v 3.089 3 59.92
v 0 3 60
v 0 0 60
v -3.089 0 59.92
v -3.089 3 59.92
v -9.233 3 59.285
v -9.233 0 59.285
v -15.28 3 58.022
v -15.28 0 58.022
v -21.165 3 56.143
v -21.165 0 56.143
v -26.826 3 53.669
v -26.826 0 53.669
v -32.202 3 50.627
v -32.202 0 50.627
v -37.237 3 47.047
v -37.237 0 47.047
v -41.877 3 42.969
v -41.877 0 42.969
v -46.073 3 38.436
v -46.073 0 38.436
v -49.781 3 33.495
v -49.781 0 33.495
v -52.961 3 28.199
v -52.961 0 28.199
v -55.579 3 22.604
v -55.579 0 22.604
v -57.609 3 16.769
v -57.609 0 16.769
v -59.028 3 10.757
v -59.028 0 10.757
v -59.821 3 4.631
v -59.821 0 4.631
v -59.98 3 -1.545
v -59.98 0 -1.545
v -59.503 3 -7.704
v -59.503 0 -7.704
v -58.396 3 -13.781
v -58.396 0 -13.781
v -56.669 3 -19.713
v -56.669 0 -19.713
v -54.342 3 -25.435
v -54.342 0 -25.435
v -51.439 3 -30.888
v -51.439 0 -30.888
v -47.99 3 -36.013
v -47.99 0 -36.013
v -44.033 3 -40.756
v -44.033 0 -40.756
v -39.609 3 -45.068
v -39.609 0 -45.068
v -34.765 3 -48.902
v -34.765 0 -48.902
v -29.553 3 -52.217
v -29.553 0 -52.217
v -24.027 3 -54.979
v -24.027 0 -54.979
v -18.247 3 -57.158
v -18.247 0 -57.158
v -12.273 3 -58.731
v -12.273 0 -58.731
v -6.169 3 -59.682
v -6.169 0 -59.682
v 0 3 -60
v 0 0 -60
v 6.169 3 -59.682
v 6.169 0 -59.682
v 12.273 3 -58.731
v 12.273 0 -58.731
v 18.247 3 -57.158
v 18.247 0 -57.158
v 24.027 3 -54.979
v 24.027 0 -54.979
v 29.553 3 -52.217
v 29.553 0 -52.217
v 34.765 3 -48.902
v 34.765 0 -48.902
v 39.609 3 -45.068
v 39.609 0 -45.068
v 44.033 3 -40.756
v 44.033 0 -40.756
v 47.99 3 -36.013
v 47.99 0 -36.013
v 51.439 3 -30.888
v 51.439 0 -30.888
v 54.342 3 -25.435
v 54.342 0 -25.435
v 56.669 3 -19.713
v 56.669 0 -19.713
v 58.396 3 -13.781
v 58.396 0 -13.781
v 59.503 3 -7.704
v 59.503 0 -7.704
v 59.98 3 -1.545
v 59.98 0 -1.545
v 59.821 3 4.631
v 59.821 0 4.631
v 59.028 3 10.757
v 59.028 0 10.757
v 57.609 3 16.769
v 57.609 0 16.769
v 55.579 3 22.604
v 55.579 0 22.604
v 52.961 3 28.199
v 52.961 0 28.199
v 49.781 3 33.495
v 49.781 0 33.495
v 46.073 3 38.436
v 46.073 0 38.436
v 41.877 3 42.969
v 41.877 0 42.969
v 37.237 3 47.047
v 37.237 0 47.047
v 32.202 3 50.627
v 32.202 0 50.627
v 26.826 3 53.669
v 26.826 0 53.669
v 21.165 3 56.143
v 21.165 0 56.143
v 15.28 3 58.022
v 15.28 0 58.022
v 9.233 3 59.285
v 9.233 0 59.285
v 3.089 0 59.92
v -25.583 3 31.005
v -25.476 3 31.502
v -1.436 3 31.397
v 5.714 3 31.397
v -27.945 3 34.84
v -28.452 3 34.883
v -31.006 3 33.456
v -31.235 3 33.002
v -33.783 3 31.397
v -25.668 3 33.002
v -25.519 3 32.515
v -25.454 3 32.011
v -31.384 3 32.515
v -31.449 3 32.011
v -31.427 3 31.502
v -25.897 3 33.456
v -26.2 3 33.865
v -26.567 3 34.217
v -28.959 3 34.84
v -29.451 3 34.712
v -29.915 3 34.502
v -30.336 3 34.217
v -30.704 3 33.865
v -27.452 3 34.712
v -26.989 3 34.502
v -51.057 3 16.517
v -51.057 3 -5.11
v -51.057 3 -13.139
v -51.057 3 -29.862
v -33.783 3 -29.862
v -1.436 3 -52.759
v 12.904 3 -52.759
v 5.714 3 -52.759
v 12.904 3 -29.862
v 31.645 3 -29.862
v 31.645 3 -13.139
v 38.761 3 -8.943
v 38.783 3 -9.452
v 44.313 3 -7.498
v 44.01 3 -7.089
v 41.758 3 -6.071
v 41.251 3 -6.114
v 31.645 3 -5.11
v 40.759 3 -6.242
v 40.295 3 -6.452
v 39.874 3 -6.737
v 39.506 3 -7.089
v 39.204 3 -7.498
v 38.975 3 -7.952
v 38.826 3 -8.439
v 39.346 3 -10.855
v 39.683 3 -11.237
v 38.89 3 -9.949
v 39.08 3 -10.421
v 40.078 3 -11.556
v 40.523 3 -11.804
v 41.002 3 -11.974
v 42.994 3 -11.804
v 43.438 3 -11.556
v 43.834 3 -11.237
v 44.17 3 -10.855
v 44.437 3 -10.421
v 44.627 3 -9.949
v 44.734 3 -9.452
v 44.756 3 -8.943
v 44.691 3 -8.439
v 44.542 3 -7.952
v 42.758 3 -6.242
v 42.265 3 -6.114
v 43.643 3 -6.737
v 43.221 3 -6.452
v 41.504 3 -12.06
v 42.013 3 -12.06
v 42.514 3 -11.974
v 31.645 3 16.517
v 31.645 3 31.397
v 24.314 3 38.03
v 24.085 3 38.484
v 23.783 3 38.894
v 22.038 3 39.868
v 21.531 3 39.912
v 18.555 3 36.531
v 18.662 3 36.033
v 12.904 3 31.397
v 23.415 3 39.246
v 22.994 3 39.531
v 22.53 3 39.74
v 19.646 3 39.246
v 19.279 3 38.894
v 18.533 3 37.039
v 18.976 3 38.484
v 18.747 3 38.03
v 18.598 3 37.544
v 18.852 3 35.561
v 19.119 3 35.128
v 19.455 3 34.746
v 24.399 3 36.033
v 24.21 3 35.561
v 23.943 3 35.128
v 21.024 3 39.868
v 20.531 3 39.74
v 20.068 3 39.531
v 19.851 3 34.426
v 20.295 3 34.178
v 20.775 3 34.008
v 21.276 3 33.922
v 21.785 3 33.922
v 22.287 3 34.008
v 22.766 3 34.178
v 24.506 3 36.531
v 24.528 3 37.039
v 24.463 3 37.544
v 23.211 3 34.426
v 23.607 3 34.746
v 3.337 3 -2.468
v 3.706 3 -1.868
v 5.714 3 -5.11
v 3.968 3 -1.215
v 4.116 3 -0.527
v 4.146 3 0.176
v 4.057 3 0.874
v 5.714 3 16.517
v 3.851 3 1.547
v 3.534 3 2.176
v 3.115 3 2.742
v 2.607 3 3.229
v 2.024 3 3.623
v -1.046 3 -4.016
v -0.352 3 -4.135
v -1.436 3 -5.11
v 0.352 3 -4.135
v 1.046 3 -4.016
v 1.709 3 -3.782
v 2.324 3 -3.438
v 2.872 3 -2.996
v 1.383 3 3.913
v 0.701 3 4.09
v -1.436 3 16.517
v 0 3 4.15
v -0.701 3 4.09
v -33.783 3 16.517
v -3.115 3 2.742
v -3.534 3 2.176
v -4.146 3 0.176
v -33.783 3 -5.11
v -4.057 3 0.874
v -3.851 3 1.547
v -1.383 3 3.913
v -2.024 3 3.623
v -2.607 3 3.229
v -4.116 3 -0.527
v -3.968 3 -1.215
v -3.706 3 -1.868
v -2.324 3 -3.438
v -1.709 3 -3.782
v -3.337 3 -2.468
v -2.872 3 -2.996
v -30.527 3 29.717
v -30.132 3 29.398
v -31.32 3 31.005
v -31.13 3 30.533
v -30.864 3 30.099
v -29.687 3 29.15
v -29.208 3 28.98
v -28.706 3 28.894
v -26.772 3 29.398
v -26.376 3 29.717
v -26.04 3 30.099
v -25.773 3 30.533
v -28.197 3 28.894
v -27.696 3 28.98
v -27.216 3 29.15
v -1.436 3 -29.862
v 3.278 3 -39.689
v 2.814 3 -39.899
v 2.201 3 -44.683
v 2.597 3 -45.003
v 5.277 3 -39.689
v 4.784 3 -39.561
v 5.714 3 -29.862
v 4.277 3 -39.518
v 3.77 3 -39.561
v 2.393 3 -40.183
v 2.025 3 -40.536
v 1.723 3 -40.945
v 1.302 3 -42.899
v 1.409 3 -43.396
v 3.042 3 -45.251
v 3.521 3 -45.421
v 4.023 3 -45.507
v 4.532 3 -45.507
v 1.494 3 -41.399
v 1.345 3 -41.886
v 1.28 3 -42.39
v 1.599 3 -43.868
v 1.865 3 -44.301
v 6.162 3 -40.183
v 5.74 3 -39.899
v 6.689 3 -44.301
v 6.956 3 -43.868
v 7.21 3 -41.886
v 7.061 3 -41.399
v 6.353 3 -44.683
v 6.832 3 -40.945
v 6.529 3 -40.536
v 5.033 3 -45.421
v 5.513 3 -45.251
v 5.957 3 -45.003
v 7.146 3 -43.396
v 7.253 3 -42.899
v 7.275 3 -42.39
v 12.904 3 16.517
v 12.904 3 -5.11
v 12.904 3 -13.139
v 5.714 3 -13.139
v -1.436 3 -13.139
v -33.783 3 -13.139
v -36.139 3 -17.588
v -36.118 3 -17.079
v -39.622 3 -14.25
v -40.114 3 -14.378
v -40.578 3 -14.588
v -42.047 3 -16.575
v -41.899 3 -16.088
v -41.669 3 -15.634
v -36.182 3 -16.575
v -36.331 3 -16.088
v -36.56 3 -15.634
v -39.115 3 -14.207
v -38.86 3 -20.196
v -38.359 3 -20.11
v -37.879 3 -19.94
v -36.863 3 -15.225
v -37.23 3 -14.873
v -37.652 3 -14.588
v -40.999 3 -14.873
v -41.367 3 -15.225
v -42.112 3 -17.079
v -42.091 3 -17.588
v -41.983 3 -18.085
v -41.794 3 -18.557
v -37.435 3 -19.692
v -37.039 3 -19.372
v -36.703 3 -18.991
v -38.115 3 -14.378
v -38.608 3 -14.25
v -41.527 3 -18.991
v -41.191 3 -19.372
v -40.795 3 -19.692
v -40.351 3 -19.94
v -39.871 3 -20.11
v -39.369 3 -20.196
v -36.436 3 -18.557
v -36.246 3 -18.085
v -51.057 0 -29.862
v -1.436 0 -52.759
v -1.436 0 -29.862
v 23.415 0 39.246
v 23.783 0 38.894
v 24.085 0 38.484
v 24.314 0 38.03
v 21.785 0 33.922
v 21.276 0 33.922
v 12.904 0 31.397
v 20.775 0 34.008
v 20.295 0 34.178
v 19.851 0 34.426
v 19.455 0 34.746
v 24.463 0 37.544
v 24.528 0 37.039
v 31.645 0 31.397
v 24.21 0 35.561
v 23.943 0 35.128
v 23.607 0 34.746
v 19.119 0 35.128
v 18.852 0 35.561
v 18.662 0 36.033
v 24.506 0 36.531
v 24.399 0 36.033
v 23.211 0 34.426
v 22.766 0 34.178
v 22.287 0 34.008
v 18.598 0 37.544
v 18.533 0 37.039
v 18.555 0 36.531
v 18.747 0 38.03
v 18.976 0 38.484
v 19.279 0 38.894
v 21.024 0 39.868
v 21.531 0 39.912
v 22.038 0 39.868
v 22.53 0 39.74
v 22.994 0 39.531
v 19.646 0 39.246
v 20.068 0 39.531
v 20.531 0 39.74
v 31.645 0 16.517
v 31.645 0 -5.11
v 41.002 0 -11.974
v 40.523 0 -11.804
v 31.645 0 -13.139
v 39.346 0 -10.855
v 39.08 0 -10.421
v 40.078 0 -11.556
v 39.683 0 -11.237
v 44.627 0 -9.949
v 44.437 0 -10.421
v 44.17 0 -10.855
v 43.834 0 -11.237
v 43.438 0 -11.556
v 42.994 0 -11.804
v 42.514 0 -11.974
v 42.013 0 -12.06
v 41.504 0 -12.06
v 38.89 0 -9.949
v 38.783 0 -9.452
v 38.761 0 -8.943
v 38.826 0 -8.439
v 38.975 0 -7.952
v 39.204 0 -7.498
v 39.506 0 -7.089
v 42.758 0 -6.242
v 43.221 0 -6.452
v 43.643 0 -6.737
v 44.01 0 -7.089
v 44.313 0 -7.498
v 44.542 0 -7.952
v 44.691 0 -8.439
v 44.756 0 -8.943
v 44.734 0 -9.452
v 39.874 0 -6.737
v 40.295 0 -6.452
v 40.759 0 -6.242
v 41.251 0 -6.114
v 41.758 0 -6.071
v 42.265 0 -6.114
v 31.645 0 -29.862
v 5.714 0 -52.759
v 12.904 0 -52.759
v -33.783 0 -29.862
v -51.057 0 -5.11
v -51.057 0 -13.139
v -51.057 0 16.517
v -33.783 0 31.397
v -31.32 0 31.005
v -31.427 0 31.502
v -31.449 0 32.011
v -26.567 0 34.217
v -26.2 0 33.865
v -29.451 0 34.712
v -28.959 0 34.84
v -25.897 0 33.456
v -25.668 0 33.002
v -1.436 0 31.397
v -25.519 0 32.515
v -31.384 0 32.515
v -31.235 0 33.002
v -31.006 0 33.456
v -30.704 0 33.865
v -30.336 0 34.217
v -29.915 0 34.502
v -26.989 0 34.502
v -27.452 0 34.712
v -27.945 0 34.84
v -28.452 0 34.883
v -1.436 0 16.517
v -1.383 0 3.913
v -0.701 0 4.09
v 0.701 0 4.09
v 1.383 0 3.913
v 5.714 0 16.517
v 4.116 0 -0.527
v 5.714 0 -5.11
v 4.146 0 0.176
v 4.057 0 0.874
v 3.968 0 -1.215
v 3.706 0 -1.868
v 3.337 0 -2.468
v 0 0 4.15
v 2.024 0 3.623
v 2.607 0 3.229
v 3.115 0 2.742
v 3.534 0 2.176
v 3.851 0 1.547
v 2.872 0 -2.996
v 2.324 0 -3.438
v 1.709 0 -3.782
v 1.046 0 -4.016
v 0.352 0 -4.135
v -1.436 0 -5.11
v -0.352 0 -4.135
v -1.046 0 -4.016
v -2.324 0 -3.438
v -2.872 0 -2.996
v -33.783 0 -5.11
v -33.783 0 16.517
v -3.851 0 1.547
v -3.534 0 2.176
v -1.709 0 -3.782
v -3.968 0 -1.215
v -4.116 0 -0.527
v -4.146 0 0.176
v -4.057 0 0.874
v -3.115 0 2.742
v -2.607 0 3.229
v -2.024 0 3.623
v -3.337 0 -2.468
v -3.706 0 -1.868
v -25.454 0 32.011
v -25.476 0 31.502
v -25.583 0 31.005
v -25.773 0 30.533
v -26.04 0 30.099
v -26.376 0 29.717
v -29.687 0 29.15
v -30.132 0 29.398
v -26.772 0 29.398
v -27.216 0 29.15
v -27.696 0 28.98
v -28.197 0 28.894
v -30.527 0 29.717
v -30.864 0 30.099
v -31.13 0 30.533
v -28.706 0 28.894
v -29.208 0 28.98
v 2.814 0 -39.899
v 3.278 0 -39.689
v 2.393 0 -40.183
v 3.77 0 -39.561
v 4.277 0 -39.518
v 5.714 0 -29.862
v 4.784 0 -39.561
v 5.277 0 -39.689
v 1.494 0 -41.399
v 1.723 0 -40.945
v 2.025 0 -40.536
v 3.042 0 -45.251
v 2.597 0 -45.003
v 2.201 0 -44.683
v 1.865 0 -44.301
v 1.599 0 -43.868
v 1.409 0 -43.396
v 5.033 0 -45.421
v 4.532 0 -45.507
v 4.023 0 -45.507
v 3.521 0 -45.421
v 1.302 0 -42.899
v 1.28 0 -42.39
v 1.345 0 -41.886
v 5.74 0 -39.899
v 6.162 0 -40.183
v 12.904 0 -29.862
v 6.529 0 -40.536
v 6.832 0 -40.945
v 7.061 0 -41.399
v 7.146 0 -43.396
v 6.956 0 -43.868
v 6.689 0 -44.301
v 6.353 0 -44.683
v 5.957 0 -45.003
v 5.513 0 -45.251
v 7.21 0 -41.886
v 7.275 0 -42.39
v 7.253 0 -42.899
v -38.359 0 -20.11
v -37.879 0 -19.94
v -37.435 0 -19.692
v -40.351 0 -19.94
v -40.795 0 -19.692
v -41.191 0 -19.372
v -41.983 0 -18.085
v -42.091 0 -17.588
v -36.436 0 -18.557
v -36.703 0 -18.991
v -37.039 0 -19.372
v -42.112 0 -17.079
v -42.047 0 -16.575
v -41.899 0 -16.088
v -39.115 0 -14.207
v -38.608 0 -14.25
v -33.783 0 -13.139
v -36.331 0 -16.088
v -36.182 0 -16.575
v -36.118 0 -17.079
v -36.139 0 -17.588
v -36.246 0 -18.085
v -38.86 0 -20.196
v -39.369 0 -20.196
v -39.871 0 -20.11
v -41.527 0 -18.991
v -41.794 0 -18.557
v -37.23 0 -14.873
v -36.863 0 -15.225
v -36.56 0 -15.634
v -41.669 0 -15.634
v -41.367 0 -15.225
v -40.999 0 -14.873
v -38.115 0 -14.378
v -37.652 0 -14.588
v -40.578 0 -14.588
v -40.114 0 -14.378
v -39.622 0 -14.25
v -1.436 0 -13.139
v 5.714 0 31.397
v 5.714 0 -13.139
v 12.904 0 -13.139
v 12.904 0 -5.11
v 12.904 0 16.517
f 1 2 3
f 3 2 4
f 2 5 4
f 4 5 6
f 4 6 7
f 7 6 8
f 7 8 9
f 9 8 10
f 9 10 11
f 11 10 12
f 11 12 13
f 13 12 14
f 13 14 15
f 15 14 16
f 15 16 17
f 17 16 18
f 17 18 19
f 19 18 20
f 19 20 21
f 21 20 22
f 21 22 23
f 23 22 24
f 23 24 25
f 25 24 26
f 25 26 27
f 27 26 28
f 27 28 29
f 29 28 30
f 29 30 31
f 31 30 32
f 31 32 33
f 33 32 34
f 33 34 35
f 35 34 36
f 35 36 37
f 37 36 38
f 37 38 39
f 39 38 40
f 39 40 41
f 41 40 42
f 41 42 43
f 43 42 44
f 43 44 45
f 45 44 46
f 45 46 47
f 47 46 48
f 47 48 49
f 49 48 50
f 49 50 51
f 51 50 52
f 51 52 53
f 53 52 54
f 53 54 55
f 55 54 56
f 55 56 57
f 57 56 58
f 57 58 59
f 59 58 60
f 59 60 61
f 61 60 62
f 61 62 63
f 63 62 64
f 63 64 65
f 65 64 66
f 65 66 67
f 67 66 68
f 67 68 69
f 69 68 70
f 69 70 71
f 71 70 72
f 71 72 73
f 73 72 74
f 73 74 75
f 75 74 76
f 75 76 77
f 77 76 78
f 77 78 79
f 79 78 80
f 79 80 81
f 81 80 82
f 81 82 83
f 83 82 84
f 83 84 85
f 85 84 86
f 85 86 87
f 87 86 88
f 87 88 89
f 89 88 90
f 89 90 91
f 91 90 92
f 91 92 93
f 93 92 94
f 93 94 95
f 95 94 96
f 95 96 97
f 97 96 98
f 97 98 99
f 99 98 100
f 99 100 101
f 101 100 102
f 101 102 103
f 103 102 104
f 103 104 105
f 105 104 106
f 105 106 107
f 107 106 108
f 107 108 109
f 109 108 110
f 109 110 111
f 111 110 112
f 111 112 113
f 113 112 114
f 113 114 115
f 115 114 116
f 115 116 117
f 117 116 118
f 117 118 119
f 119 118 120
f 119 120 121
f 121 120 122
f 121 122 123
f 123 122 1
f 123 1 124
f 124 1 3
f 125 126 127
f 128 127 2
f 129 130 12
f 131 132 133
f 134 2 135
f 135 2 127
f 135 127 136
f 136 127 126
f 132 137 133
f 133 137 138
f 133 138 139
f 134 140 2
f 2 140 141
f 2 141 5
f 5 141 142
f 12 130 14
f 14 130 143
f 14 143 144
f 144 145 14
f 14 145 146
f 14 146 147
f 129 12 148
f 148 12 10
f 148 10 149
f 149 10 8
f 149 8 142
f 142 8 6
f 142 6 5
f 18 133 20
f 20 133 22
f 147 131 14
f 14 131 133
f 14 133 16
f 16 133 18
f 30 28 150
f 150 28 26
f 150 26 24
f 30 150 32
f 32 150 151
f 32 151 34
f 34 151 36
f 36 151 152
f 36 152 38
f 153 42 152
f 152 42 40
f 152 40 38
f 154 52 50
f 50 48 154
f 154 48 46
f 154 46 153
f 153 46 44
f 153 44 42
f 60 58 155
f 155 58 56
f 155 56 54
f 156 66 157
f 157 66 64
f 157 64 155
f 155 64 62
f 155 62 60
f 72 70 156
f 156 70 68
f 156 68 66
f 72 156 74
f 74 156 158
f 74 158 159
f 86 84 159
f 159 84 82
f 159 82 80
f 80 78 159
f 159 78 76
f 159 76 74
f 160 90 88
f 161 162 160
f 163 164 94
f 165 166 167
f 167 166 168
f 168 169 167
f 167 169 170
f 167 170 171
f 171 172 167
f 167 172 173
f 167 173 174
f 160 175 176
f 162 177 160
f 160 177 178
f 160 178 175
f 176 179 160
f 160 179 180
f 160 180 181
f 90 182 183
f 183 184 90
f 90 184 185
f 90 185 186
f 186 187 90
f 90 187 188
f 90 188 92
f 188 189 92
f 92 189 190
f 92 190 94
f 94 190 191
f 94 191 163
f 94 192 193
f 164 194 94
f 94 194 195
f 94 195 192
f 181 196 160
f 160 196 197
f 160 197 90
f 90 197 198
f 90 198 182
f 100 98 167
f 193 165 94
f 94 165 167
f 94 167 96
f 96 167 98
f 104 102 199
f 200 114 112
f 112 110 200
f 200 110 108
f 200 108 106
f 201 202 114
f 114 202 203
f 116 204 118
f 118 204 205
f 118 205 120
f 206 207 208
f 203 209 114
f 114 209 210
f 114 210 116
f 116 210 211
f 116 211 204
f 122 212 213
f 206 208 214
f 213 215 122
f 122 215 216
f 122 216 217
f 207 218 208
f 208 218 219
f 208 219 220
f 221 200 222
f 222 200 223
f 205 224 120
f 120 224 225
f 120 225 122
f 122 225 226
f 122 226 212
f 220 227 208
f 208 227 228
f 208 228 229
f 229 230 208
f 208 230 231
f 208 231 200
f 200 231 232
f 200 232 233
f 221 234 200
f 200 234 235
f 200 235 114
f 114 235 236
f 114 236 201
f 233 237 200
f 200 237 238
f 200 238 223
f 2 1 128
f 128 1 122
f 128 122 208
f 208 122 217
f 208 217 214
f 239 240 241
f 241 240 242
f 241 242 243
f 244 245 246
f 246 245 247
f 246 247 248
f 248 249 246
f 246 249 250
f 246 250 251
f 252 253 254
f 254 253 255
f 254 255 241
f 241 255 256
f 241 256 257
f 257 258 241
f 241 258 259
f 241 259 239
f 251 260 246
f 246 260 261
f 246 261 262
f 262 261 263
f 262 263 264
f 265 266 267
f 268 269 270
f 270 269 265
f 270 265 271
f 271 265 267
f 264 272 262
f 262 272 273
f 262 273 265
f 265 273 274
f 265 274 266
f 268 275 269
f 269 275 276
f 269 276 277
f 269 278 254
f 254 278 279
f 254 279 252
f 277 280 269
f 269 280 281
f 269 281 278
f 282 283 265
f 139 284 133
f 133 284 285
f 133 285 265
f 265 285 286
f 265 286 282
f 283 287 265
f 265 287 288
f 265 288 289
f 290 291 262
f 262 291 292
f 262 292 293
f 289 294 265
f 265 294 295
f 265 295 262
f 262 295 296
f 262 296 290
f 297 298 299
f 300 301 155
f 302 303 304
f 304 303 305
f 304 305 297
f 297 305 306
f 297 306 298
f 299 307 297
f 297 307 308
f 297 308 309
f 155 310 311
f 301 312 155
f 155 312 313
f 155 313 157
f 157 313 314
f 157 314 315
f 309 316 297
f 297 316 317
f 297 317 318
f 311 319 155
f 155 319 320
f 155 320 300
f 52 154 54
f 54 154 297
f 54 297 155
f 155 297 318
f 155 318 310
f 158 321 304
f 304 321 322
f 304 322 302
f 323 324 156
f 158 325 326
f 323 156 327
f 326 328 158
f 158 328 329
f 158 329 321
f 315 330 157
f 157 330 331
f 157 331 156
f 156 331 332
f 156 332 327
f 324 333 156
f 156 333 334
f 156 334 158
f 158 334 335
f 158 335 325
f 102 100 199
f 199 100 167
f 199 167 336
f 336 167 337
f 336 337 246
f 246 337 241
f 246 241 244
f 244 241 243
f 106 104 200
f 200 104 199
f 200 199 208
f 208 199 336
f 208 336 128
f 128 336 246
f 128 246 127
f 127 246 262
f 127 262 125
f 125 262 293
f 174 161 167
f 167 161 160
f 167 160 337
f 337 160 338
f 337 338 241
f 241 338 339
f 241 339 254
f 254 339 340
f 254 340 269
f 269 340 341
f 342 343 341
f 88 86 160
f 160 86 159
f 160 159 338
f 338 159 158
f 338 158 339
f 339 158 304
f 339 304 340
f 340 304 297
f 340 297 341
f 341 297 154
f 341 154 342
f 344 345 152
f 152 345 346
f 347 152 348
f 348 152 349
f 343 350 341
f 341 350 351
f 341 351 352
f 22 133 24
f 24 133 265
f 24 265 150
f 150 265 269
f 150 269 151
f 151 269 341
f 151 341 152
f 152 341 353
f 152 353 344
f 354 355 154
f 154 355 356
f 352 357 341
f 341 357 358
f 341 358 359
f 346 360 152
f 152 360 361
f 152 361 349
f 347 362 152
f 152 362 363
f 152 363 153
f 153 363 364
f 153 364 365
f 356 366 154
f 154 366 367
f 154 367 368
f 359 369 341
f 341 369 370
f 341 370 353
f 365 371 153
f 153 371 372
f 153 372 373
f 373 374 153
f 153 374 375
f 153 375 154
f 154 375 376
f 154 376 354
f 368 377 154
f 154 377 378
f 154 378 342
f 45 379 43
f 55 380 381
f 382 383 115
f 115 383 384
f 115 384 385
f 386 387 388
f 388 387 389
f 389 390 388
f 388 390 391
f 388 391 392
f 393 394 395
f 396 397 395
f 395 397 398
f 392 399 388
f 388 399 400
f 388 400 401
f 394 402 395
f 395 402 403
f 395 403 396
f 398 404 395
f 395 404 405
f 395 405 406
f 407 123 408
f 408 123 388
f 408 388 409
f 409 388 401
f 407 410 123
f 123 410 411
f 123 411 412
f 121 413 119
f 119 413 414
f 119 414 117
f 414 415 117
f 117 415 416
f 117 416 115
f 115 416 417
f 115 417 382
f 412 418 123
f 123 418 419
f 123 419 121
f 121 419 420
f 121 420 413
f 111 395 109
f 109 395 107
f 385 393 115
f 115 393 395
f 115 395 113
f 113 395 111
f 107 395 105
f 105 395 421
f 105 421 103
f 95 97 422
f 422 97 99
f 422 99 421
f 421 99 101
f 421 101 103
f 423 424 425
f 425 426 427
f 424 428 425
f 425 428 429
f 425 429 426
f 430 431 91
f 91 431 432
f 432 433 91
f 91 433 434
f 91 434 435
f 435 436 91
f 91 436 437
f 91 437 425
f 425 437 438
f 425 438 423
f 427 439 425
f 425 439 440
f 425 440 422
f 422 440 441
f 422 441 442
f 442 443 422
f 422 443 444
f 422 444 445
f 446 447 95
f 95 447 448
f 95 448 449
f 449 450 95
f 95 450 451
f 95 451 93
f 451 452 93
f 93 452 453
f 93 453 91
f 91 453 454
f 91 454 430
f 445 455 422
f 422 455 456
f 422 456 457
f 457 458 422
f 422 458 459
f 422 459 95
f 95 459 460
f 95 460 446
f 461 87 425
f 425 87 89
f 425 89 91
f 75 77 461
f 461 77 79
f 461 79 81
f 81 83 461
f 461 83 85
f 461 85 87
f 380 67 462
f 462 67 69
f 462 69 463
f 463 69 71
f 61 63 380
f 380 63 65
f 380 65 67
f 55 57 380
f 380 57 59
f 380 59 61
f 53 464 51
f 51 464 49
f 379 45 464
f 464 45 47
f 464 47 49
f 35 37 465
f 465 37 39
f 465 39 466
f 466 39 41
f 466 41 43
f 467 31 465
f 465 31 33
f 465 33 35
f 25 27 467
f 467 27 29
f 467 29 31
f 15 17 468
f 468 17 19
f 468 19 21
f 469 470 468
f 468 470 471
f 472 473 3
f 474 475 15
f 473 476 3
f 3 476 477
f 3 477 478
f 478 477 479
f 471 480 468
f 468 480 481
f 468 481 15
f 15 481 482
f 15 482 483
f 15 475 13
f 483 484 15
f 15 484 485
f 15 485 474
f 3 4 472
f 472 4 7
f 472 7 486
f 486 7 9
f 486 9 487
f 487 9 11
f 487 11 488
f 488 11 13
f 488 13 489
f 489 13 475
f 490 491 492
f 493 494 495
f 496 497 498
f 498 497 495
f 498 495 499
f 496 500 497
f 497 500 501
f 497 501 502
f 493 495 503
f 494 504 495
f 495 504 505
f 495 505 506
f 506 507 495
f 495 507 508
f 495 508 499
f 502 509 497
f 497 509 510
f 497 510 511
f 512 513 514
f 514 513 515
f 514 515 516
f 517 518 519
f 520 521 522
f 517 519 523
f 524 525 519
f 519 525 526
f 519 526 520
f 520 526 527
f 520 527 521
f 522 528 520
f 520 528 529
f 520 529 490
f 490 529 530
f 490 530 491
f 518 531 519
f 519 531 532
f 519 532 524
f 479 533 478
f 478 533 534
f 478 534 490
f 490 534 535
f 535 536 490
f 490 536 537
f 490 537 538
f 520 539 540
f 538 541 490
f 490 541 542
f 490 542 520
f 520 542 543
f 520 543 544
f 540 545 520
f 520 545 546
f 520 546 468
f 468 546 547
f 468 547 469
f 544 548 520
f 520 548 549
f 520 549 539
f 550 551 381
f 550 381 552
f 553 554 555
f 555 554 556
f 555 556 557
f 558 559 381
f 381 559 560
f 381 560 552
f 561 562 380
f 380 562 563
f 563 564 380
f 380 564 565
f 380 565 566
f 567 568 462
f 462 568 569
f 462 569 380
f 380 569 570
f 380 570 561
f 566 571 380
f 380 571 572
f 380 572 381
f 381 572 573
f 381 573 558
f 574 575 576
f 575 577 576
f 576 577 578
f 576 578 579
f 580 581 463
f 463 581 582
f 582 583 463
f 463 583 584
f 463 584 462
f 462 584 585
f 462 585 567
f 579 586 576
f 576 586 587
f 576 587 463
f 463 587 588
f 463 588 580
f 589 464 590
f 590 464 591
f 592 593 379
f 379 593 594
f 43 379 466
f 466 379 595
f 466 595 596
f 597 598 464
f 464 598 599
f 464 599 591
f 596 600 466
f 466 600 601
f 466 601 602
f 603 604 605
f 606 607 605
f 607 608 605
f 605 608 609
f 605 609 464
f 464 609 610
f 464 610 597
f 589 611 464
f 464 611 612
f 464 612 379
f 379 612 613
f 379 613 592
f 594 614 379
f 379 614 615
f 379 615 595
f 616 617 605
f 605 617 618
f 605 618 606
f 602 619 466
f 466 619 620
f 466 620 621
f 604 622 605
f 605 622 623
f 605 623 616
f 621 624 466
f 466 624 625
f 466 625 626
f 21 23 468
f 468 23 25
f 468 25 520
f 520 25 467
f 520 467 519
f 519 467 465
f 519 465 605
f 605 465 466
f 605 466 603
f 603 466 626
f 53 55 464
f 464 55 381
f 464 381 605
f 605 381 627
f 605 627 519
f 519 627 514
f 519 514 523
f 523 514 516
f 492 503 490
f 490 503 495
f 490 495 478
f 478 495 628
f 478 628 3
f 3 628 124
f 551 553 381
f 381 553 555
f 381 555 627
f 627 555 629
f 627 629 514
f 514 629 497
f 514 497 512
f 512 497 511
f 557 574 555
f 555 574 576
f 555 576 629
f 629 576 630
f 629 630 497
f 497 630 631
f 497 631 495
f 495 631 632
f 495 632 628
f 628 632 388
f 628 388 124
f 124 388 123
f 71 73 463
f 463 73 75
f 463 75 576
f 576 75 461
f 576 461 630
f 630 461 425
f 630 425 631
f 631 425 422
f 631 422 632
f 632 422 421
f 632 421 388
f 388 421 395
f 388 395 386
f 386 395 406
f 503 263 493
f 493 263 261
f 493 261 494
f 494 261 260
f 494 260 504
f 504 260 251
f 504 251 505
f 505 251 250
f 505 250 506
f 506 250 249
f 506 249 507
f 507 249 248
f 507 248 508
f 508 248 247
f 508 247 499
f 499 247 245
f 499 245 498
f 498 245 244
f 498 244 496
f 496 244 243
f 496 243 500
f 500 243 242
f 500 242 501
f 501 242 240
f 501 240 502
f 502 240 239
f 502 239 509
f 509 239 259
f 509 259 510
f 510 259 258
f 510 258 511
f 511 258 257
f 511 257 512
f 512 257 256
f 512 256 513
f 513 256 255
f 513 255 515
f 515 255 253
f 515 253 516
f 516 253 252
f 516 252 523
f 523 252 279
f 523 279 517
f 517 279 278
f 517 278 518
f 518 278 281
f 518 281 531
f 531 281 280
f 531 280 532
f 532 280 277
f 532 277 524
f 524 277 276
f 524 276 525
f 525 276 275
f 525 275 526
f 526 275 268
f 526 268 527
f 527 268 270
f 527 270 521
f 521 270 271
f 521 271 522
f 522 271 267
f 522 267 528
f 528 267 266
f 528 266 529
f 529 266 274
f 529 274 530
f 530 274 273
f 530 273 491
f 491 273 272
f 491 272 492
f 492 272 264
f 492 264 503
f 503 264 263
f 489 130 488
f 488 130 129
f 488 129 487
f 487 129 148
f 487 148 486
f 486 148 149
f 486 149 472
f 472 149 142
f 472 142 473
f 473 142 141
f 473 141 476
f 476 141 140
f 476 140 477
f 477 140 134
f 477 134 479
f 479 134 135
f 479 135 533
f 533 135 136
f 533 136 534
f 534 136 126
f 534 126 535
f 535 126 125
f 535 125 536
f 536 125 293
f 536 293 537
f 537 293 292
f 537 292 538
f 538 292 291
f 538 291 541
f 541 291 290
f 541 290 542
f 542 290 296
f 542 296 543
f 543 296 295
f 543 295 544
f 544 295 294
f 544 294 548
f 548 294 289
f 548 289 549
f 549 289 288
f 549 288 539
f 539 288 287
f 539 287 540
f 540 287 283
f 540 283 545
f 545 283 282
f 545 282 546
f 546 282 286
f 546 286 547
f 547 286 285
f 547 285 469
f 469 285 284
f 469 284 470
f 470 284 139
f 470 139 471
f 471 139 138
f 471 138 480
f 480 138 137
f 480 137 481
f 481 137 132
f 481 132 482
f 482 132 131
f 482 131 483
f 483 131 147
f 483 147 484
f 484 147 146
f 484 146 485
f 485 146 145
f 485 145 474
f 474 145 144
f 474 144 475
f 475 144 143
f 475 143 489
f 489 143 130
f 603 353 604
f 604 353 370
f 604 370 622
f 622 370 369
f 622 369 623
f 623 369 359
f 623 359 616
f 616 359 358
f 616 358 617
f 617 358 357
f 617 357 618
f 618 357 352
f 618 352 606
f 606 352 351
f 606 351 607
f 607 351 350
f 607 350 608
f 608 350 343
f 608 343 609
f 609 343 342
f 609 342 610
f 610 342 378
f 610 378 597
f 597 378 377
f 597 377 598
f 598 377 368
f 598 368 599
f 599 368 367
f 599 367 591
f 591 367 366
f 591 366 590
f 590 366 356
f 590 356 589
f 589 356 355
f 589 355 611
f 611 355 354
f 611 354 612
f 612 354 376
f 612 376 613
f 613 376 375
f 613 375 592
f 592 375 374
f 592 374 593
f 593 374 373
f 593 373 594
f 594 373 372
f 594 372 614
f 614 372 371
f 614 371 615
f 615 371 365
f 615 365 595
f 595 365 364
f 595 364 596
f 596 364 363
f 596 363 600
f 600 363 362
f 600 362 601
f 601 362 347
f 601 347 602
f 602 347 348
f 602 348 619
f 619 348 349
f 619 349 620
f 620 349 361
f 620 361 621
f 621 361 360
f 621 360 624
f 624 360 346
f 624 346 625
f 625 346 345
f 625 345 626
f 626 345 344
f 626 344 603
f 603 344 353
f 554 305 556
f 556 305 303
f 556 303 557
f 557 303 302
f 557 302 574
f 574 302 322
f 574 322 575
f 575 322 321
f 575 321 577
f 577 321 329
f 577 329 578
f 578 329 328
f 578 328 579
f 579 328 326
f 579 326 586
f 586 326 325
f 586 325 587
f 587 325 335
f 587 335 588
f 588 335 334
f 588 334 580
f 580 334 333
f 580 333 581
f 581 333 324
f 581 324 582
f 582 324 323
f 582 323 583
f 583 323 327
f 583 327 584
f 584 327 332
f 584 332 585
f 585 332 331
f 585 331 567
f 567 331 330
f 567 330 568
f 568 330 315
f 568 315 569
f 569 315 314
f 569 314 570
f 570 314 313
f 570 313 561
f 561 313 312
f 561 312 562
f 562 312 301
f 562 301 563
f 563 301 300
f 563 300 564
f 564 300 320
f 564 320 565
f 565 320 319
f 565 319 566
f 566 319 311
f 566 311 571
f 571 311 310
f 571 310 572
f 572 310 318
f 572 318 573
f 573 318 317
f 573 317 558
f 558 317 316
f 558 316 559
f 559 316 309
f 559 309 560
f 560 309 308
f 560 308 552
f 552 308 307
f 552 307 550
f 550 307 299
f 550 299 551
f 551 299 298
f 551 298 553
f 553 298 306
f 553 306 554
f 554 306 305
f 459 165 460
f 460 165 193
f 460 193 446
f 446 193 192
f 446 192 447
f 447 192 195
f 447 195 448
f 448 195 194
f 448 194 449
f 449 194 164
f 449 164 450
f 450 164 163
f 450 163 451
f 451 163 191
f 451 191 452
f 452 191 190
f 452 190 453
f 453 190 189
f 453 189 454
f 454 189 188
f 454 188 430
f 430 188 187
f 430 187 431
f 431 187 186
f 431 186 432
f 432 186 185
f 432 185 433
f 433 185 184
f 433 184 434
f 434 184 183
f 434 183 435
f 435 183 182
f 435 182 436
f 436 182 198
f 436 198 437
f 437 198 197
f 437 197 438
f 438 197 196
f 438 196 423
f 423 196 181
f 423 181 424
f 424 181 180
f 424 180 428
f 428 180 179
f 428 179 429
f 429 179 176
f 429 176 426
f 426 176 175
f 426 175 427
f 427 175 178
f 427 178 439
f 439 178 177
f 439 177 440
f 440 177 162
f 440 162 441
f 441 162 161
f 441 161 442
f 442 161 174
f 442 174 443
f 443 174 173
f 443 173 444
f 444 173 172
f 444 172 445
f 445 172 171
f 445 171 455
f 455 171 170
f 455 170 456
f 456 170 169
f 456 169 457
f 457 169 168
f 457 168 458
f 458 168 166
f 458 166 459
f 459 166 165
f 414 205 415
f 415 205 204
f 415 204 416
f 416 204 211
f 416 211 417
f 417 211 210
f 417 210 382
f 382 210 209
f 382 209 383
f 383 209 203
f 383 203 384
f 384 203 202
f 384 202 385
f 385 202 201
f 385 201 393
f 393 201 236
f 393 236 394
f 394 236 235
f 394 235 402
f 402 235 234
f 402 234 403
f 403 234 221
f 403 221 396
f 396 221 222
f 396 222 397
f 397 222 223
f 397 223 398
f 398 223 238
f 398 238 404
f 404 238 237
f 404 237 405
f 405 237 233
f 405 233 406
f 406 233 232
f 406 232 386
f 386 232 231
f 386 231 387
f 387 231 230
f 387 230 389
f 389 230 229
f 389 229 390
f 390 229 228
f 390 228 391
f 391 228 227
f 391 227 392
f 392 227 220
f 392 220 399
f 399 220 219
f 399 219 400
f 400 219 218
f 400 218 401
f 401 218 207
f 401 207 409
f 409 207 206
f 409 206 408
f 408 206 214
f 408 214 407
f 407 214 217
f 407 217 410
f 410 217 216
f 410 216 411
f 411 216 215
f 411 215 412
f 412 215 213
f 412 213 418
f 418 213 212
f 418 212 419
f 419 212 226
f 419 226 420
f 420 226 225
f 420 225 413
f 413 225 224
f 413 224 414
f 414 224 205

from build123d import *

# Parameters (mm, degrees)
SKETCH1_R           = 60
BOSS_EXTRUDE1_DEPTH = 3
SKETCH2_R           = 4.15
CUT_EXTRUDE1_DEPTH  = 5
SKETCH3_R           = 3
CUT_EXTRUDE2_DEPTH  = 10


with BuildPart() as part:
    # Sketch1 → Boss-Extrude1 (new body)
    with BuildSketch(Plane(origin=(0, 0, 0), x_dir=(1, 0, 0), z_dir=(0, 1, 0))):
        with Locations(Location((0, 0, 0), (0, 0, 270))):
            Circle(SKETCH1_R)
    extrude(amount=BOSS_EXTRUDE1_DEPTH)

    # Sketch2 → Cut-Extrude1 (cut)
    with BuildSketch(Plane(origin=(0, 3, 0), x_dir=(1, 0, 0), z_dir=(0, 1, 0))):
        with Locations(Location((0, 0, 0), (0, 0, 270))):
            Circle(SKETCH2_R)
    extrude(amount=-CUT_EXTRUDE1_DEPTH, mode=Mode.SUBTRACT)

    # Sketch3 → Cut-Extrude2 (cut)
    with BuildSketch(Plane(origin=(0, 3, 0), x_dir=(1, 0, 0), z_dir=(0, 1, 0))):
        with Locations(Location((-28.451614764, -31.883278826, 0), (0, 0, 270))):
            Circle(SKETCH3_R)
        with Locations(Location((-39.114832567, 17.206618627, 0), (0, 0, 270))):
            Circle(SKETCH3_R)
        with Locations(Location((4.277318773, 42.517553969, 0), (0, 0, 270))):
            Circle(SKETCH3_R)
        with Locations(Location((41.75836095, 9.070674844, 0), (0, 0, 270))):
            Circle(SKETCH3_R)
        with Locations(Location((21.530767608, -36.911568614, 0), (0, 0, 270))):
            Circle(SKETCH3_R)
    extrude(amount=-CUT_EXTRUDE2_DEPTH, mode=Mode.SUBTRACT)


solid = part.part
